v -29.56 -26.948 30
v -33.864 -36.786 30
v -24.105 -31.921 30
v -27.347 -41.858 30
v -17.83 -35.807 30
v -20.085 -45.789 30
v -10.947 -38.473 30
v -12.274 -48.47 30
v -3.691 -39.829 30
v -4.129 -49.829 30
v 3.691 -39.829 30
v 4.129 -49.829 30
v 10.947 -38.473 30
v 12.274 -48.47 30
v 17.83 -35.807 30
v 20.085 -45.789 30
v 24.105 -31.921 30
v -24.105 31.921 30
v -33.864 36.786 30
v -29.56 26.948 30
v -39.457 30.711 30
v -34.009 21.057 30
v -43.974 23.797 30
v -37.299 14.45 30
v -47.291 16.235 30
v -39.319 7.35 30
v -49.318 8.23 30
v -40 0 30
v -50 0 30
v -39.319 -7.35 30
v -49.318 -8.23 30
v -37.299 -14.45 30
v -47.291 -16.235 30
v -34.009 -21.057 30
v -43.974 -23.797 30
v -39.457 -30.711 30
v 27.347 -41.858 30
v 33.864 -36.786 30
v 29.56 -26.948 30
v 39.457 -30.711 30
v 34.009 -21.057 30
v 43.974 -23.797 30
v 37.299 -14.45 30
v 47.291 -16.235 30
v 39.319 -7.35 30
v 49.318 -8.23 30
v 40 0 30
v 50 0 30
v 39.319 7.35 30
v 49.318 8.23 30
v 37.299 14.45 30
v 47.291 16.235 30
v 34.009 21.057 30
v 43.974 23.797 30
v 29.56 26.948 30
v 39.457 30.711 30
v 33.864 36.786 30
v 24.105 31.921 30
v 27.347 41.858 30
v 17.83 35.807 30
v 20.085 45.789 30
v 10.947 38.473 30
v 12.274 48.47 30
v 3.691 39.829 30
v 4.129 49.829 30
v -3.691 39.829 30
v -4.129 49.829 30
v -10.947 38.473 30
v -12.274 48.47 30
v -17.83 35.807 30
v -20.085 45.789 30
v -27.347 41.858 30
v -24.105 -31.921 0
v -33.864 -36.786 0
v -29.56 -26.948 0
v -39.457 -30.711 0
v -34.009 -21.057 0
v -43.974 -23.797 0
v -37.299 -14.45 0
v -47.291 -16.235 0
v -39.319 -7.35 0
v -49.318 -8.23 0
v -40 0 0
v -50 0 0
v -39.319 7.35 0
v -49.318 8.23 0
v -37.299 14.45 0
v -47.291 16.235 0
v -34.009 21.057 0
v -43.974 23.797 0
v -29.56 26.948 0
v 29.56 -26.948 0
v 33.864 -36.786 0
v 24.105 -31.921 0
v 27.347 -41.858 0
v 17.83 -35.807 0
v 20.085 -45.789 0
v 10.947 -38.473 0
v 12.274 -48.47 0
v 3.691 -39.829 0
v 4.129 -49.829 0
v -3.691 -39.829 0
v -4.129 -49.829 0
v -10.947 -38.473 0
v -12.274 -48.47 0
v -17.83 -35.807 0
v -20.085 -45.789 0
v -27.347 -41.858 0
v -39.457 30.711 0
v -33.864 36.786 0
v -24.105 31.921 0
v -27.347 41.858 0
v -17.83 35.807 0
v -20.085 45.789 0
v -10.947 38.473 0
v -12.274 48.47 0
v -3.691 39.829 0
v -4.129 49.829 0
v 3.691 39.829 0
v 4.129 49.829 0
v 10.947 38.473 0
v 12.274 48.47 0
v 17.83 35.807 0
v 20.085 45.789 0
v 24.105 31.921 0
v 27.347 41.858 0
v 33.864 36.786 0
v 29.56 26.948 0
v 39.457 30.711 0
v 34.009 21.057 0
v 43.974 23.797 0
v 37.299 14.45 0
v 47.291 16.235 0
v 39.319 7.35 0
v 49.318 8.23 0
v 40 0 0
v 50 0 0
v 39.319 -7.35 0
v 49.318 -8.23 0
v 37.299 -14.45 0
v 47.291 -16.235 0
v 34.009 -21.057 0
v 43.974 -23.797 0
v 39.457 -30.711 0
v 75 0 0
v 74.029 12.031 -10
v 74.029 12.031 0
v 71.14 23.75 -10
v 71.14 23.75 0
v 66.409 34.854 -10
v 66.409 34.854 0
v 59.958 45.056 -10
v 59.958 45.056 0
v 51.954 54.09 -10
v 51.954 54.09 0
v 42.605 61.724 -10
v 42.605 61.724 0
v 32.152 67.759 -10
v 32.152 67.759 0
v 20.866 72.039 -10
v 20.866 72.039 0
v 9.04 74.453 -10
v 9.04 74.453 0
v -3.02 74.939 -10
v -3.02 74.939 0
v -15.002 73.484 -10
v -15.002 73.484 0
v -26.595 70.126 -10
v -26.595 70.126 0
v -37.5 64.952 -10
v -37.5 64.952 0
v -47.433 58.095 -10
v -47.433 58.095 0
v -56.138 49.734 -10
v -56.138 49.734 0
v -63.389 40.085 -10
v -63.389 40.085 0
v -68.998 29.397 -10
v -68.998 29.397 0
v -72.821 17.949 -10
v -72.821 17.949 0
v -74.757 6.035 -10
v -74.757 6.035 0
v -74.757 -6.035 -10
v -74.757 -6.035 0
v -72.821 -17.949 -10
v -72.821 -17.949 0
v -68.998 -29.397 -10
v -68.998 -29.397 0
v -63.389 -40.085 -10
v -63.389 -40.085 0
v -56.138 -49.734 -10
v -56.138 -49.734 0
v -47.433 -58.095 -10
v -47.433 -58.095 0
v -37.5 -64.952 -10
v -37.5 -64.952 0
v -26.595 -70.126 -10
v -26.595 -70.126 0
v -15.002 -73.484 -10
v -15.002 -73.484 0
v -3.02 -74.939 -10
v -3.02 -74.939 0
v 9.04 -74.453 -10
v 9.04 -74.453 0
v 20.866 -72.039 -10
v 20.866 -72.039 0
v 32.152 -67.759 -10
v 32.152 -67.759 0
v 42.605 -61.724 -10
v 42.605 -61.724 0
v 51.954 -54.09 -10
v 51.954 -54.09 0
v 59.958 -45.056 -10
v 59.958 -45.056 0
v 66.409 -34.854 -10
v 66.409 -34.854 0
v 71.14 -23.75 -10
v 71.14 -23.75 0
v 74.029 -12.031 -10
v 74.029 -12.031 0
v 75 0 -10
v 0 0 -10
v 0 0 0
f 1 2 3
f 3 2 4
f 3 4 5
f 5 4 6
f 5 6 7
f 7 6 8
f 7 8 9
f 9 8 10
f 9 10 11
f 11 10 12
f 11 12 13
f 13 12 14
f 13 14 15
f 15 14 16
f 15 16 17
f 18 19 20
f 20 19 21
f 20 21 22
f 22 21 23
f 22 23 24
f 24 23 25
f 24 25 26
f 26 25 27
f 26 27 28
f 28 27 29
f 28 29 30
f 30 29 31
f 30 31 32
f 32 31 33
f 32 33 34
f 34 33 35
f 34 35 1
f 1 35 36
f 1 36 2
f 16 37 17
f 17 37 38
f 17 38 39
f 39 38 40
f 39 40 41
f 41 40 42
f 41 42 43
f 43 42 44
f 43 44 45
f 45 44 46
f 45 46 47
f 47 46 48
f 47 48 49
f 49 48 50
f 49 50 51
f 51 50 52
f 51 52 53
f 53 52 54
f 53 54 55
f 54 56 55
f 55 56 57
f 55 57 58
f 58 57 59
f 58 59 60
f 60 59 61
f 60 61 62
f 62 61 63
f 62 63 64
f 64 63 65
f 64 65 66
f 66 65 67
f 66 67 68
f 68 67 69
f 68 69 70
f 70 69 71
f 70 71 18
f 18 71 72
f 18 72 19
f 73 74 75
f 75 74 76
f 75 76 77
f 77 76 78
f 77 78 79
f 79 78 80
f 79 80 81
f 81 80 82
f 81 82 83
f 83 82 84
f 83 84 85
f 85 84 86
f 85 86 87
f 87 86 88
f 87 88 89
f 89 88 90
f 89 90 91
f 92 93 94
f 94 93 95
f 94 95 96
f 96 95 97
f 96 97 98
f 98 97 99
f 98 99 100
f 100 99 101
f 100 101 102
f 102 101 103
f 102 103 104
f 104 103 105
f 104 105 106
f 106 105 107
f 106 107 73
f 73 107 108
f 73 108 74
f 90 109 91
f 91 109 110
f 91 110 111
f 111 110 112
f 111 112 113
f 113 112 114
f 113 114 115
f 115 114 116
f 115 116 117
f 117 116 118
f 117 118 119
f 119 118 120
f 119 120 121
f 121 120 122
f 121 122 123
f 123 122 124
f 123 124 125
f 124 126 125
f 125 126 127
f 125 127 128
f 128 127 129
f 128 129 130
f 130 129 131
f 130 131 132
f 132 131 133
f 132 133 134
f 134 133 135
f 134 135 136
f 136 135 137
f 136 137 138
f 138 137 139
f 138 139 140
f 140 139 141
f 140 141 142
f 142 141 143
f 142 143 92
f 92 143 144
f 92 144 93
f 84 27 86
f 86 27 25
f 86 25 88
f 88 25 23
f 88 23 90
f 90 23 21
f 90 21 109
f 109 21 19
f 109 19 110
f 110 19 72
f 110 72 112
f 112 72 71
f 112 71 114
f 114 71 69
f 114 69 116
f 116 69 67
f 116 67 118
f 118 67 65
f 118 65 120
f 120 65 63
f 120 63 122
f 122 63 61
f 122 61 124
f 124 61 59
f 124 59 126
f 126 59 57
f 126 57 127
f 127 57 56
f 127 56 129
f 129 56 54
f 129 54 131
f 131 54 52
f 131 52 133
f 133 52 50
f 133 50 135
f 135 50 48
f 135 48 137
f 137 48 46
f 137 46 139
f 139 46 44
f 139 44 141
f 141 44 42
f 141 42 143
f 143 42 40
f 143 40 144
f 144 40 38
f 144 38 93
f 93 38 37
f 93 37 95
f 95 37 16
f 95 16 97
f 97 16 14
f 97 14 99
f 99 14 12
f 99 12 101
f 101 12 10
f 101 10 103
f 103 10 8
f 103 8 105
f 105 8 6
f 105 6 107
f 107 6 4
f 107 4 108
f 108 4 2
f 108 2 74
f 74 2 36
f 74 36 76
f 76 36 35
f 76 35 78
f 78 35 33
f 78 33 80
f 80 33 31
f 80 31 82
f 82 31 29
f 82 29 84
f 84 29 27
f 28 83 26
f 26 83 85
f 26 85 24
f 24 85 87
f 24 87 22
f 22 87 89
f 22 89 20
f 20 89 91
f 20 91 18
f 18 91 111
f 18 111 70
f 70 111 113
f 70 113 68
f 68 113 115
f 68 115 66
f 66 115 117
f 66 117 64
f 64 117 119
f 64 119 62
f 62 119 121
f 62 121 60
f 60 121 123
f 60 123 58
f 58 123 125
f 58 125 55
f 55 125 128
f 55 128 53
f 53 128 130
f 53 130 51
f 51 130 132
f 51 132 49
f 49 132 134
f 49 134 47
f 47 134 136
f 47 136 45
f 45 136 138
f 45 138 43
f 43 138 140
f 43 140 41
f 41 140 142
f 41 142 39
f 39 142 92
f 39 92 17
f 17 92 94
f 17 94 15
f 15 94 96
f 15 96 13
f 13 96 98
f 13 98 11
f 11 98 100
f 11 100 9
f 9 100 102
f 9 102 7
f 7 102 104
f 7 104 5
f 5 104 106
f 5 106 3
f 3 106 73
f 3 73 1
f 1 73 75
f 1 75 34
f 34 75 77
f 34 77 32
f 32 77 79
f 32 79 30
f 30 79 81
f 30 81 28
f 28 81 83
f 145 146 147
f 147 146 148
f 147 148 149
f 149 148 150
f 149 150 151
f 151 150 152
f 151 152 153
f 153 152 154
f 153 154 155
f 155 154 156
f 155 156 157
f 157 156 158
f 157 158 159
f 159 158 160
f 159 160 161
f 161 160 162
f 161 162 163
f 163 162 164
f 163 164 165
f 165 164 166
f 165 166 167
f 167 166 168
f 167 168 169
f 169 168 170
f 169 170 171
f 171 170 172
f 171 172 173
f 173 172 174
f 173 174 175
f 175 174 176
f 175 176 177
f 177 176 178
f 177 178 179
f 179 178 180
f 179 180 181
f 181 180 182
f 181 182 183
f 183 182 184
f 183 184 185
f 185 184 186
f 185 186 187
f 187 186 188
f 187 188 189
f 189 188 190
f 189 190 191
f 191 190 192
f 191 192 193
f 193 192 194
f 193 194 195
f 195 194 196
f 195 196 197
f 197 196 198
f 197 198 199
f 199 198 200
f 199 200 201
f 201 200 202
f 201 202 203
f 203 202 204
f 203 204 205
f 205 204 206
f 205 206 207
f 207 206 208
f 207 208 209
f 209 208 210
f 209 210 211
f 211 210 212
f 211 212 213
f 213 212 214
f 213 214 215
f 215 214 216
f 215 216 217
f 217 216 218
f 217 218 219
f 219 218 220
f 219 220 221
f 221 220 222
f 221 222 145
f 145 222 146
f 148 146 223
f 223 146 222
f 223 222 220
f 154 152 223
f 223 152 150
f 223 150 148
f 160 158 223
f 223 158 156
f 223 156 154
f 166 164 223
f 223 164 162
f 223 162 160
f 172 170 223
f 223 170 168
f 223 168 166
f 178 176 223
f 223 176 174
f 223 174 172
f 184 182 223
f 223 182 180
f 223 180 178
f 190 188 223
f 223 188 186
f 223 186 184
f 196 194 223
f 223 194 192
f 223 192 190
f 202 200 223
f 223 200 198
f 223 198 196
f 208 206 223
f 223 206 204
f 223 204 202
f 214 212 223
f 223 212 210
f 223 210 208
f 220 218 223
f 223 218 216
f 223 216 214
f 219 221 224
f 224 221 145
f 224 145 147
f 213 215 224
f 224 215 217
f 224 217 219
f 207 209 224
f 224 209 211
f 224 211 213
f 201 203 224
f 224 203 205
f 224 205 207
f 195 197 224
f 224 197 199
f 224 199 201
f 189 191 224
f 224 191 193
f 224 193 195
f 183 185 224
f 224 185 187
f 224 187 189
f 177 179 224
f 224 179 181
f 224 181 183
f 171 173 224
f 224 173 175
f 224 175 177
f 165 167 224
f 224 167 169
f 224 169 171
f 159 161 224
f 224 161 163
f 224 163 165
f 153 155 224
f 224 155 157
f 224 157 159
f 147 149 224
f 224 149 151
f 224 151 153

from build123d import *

# Parameters (mm, degrees)
SKETCH2_R           = 50
SKETCH2_R_2         = 40
BOSS_EXTRUDE1_DEPTH = 30
SKETCH3_R           = 75
BOSS_EXTRUDE2_DEPTH = 10


with BuildPart() as part:
    # Sketch2 → Boss-Extrude1 (new body)
    with BuildSketch(Plane.XY):
        Circle(SKETCH2_R)
        Circle(SKETCH2_R_2, mode=Mode.SUBTRACT)
    extrude(amount=BOSS_EXTRUDE1_DEPTH)


with BuildPart() as body_2:
    # Sketch3 → Boss-Extrude2 (new body)
    with BuildSketch(Plane.XY):
        Circle(SKETCH3_R)
    extrude(amount=-BOSS_EXTRUDE2_DEPTH)


solid = Compound([part.part, body_2.part])
